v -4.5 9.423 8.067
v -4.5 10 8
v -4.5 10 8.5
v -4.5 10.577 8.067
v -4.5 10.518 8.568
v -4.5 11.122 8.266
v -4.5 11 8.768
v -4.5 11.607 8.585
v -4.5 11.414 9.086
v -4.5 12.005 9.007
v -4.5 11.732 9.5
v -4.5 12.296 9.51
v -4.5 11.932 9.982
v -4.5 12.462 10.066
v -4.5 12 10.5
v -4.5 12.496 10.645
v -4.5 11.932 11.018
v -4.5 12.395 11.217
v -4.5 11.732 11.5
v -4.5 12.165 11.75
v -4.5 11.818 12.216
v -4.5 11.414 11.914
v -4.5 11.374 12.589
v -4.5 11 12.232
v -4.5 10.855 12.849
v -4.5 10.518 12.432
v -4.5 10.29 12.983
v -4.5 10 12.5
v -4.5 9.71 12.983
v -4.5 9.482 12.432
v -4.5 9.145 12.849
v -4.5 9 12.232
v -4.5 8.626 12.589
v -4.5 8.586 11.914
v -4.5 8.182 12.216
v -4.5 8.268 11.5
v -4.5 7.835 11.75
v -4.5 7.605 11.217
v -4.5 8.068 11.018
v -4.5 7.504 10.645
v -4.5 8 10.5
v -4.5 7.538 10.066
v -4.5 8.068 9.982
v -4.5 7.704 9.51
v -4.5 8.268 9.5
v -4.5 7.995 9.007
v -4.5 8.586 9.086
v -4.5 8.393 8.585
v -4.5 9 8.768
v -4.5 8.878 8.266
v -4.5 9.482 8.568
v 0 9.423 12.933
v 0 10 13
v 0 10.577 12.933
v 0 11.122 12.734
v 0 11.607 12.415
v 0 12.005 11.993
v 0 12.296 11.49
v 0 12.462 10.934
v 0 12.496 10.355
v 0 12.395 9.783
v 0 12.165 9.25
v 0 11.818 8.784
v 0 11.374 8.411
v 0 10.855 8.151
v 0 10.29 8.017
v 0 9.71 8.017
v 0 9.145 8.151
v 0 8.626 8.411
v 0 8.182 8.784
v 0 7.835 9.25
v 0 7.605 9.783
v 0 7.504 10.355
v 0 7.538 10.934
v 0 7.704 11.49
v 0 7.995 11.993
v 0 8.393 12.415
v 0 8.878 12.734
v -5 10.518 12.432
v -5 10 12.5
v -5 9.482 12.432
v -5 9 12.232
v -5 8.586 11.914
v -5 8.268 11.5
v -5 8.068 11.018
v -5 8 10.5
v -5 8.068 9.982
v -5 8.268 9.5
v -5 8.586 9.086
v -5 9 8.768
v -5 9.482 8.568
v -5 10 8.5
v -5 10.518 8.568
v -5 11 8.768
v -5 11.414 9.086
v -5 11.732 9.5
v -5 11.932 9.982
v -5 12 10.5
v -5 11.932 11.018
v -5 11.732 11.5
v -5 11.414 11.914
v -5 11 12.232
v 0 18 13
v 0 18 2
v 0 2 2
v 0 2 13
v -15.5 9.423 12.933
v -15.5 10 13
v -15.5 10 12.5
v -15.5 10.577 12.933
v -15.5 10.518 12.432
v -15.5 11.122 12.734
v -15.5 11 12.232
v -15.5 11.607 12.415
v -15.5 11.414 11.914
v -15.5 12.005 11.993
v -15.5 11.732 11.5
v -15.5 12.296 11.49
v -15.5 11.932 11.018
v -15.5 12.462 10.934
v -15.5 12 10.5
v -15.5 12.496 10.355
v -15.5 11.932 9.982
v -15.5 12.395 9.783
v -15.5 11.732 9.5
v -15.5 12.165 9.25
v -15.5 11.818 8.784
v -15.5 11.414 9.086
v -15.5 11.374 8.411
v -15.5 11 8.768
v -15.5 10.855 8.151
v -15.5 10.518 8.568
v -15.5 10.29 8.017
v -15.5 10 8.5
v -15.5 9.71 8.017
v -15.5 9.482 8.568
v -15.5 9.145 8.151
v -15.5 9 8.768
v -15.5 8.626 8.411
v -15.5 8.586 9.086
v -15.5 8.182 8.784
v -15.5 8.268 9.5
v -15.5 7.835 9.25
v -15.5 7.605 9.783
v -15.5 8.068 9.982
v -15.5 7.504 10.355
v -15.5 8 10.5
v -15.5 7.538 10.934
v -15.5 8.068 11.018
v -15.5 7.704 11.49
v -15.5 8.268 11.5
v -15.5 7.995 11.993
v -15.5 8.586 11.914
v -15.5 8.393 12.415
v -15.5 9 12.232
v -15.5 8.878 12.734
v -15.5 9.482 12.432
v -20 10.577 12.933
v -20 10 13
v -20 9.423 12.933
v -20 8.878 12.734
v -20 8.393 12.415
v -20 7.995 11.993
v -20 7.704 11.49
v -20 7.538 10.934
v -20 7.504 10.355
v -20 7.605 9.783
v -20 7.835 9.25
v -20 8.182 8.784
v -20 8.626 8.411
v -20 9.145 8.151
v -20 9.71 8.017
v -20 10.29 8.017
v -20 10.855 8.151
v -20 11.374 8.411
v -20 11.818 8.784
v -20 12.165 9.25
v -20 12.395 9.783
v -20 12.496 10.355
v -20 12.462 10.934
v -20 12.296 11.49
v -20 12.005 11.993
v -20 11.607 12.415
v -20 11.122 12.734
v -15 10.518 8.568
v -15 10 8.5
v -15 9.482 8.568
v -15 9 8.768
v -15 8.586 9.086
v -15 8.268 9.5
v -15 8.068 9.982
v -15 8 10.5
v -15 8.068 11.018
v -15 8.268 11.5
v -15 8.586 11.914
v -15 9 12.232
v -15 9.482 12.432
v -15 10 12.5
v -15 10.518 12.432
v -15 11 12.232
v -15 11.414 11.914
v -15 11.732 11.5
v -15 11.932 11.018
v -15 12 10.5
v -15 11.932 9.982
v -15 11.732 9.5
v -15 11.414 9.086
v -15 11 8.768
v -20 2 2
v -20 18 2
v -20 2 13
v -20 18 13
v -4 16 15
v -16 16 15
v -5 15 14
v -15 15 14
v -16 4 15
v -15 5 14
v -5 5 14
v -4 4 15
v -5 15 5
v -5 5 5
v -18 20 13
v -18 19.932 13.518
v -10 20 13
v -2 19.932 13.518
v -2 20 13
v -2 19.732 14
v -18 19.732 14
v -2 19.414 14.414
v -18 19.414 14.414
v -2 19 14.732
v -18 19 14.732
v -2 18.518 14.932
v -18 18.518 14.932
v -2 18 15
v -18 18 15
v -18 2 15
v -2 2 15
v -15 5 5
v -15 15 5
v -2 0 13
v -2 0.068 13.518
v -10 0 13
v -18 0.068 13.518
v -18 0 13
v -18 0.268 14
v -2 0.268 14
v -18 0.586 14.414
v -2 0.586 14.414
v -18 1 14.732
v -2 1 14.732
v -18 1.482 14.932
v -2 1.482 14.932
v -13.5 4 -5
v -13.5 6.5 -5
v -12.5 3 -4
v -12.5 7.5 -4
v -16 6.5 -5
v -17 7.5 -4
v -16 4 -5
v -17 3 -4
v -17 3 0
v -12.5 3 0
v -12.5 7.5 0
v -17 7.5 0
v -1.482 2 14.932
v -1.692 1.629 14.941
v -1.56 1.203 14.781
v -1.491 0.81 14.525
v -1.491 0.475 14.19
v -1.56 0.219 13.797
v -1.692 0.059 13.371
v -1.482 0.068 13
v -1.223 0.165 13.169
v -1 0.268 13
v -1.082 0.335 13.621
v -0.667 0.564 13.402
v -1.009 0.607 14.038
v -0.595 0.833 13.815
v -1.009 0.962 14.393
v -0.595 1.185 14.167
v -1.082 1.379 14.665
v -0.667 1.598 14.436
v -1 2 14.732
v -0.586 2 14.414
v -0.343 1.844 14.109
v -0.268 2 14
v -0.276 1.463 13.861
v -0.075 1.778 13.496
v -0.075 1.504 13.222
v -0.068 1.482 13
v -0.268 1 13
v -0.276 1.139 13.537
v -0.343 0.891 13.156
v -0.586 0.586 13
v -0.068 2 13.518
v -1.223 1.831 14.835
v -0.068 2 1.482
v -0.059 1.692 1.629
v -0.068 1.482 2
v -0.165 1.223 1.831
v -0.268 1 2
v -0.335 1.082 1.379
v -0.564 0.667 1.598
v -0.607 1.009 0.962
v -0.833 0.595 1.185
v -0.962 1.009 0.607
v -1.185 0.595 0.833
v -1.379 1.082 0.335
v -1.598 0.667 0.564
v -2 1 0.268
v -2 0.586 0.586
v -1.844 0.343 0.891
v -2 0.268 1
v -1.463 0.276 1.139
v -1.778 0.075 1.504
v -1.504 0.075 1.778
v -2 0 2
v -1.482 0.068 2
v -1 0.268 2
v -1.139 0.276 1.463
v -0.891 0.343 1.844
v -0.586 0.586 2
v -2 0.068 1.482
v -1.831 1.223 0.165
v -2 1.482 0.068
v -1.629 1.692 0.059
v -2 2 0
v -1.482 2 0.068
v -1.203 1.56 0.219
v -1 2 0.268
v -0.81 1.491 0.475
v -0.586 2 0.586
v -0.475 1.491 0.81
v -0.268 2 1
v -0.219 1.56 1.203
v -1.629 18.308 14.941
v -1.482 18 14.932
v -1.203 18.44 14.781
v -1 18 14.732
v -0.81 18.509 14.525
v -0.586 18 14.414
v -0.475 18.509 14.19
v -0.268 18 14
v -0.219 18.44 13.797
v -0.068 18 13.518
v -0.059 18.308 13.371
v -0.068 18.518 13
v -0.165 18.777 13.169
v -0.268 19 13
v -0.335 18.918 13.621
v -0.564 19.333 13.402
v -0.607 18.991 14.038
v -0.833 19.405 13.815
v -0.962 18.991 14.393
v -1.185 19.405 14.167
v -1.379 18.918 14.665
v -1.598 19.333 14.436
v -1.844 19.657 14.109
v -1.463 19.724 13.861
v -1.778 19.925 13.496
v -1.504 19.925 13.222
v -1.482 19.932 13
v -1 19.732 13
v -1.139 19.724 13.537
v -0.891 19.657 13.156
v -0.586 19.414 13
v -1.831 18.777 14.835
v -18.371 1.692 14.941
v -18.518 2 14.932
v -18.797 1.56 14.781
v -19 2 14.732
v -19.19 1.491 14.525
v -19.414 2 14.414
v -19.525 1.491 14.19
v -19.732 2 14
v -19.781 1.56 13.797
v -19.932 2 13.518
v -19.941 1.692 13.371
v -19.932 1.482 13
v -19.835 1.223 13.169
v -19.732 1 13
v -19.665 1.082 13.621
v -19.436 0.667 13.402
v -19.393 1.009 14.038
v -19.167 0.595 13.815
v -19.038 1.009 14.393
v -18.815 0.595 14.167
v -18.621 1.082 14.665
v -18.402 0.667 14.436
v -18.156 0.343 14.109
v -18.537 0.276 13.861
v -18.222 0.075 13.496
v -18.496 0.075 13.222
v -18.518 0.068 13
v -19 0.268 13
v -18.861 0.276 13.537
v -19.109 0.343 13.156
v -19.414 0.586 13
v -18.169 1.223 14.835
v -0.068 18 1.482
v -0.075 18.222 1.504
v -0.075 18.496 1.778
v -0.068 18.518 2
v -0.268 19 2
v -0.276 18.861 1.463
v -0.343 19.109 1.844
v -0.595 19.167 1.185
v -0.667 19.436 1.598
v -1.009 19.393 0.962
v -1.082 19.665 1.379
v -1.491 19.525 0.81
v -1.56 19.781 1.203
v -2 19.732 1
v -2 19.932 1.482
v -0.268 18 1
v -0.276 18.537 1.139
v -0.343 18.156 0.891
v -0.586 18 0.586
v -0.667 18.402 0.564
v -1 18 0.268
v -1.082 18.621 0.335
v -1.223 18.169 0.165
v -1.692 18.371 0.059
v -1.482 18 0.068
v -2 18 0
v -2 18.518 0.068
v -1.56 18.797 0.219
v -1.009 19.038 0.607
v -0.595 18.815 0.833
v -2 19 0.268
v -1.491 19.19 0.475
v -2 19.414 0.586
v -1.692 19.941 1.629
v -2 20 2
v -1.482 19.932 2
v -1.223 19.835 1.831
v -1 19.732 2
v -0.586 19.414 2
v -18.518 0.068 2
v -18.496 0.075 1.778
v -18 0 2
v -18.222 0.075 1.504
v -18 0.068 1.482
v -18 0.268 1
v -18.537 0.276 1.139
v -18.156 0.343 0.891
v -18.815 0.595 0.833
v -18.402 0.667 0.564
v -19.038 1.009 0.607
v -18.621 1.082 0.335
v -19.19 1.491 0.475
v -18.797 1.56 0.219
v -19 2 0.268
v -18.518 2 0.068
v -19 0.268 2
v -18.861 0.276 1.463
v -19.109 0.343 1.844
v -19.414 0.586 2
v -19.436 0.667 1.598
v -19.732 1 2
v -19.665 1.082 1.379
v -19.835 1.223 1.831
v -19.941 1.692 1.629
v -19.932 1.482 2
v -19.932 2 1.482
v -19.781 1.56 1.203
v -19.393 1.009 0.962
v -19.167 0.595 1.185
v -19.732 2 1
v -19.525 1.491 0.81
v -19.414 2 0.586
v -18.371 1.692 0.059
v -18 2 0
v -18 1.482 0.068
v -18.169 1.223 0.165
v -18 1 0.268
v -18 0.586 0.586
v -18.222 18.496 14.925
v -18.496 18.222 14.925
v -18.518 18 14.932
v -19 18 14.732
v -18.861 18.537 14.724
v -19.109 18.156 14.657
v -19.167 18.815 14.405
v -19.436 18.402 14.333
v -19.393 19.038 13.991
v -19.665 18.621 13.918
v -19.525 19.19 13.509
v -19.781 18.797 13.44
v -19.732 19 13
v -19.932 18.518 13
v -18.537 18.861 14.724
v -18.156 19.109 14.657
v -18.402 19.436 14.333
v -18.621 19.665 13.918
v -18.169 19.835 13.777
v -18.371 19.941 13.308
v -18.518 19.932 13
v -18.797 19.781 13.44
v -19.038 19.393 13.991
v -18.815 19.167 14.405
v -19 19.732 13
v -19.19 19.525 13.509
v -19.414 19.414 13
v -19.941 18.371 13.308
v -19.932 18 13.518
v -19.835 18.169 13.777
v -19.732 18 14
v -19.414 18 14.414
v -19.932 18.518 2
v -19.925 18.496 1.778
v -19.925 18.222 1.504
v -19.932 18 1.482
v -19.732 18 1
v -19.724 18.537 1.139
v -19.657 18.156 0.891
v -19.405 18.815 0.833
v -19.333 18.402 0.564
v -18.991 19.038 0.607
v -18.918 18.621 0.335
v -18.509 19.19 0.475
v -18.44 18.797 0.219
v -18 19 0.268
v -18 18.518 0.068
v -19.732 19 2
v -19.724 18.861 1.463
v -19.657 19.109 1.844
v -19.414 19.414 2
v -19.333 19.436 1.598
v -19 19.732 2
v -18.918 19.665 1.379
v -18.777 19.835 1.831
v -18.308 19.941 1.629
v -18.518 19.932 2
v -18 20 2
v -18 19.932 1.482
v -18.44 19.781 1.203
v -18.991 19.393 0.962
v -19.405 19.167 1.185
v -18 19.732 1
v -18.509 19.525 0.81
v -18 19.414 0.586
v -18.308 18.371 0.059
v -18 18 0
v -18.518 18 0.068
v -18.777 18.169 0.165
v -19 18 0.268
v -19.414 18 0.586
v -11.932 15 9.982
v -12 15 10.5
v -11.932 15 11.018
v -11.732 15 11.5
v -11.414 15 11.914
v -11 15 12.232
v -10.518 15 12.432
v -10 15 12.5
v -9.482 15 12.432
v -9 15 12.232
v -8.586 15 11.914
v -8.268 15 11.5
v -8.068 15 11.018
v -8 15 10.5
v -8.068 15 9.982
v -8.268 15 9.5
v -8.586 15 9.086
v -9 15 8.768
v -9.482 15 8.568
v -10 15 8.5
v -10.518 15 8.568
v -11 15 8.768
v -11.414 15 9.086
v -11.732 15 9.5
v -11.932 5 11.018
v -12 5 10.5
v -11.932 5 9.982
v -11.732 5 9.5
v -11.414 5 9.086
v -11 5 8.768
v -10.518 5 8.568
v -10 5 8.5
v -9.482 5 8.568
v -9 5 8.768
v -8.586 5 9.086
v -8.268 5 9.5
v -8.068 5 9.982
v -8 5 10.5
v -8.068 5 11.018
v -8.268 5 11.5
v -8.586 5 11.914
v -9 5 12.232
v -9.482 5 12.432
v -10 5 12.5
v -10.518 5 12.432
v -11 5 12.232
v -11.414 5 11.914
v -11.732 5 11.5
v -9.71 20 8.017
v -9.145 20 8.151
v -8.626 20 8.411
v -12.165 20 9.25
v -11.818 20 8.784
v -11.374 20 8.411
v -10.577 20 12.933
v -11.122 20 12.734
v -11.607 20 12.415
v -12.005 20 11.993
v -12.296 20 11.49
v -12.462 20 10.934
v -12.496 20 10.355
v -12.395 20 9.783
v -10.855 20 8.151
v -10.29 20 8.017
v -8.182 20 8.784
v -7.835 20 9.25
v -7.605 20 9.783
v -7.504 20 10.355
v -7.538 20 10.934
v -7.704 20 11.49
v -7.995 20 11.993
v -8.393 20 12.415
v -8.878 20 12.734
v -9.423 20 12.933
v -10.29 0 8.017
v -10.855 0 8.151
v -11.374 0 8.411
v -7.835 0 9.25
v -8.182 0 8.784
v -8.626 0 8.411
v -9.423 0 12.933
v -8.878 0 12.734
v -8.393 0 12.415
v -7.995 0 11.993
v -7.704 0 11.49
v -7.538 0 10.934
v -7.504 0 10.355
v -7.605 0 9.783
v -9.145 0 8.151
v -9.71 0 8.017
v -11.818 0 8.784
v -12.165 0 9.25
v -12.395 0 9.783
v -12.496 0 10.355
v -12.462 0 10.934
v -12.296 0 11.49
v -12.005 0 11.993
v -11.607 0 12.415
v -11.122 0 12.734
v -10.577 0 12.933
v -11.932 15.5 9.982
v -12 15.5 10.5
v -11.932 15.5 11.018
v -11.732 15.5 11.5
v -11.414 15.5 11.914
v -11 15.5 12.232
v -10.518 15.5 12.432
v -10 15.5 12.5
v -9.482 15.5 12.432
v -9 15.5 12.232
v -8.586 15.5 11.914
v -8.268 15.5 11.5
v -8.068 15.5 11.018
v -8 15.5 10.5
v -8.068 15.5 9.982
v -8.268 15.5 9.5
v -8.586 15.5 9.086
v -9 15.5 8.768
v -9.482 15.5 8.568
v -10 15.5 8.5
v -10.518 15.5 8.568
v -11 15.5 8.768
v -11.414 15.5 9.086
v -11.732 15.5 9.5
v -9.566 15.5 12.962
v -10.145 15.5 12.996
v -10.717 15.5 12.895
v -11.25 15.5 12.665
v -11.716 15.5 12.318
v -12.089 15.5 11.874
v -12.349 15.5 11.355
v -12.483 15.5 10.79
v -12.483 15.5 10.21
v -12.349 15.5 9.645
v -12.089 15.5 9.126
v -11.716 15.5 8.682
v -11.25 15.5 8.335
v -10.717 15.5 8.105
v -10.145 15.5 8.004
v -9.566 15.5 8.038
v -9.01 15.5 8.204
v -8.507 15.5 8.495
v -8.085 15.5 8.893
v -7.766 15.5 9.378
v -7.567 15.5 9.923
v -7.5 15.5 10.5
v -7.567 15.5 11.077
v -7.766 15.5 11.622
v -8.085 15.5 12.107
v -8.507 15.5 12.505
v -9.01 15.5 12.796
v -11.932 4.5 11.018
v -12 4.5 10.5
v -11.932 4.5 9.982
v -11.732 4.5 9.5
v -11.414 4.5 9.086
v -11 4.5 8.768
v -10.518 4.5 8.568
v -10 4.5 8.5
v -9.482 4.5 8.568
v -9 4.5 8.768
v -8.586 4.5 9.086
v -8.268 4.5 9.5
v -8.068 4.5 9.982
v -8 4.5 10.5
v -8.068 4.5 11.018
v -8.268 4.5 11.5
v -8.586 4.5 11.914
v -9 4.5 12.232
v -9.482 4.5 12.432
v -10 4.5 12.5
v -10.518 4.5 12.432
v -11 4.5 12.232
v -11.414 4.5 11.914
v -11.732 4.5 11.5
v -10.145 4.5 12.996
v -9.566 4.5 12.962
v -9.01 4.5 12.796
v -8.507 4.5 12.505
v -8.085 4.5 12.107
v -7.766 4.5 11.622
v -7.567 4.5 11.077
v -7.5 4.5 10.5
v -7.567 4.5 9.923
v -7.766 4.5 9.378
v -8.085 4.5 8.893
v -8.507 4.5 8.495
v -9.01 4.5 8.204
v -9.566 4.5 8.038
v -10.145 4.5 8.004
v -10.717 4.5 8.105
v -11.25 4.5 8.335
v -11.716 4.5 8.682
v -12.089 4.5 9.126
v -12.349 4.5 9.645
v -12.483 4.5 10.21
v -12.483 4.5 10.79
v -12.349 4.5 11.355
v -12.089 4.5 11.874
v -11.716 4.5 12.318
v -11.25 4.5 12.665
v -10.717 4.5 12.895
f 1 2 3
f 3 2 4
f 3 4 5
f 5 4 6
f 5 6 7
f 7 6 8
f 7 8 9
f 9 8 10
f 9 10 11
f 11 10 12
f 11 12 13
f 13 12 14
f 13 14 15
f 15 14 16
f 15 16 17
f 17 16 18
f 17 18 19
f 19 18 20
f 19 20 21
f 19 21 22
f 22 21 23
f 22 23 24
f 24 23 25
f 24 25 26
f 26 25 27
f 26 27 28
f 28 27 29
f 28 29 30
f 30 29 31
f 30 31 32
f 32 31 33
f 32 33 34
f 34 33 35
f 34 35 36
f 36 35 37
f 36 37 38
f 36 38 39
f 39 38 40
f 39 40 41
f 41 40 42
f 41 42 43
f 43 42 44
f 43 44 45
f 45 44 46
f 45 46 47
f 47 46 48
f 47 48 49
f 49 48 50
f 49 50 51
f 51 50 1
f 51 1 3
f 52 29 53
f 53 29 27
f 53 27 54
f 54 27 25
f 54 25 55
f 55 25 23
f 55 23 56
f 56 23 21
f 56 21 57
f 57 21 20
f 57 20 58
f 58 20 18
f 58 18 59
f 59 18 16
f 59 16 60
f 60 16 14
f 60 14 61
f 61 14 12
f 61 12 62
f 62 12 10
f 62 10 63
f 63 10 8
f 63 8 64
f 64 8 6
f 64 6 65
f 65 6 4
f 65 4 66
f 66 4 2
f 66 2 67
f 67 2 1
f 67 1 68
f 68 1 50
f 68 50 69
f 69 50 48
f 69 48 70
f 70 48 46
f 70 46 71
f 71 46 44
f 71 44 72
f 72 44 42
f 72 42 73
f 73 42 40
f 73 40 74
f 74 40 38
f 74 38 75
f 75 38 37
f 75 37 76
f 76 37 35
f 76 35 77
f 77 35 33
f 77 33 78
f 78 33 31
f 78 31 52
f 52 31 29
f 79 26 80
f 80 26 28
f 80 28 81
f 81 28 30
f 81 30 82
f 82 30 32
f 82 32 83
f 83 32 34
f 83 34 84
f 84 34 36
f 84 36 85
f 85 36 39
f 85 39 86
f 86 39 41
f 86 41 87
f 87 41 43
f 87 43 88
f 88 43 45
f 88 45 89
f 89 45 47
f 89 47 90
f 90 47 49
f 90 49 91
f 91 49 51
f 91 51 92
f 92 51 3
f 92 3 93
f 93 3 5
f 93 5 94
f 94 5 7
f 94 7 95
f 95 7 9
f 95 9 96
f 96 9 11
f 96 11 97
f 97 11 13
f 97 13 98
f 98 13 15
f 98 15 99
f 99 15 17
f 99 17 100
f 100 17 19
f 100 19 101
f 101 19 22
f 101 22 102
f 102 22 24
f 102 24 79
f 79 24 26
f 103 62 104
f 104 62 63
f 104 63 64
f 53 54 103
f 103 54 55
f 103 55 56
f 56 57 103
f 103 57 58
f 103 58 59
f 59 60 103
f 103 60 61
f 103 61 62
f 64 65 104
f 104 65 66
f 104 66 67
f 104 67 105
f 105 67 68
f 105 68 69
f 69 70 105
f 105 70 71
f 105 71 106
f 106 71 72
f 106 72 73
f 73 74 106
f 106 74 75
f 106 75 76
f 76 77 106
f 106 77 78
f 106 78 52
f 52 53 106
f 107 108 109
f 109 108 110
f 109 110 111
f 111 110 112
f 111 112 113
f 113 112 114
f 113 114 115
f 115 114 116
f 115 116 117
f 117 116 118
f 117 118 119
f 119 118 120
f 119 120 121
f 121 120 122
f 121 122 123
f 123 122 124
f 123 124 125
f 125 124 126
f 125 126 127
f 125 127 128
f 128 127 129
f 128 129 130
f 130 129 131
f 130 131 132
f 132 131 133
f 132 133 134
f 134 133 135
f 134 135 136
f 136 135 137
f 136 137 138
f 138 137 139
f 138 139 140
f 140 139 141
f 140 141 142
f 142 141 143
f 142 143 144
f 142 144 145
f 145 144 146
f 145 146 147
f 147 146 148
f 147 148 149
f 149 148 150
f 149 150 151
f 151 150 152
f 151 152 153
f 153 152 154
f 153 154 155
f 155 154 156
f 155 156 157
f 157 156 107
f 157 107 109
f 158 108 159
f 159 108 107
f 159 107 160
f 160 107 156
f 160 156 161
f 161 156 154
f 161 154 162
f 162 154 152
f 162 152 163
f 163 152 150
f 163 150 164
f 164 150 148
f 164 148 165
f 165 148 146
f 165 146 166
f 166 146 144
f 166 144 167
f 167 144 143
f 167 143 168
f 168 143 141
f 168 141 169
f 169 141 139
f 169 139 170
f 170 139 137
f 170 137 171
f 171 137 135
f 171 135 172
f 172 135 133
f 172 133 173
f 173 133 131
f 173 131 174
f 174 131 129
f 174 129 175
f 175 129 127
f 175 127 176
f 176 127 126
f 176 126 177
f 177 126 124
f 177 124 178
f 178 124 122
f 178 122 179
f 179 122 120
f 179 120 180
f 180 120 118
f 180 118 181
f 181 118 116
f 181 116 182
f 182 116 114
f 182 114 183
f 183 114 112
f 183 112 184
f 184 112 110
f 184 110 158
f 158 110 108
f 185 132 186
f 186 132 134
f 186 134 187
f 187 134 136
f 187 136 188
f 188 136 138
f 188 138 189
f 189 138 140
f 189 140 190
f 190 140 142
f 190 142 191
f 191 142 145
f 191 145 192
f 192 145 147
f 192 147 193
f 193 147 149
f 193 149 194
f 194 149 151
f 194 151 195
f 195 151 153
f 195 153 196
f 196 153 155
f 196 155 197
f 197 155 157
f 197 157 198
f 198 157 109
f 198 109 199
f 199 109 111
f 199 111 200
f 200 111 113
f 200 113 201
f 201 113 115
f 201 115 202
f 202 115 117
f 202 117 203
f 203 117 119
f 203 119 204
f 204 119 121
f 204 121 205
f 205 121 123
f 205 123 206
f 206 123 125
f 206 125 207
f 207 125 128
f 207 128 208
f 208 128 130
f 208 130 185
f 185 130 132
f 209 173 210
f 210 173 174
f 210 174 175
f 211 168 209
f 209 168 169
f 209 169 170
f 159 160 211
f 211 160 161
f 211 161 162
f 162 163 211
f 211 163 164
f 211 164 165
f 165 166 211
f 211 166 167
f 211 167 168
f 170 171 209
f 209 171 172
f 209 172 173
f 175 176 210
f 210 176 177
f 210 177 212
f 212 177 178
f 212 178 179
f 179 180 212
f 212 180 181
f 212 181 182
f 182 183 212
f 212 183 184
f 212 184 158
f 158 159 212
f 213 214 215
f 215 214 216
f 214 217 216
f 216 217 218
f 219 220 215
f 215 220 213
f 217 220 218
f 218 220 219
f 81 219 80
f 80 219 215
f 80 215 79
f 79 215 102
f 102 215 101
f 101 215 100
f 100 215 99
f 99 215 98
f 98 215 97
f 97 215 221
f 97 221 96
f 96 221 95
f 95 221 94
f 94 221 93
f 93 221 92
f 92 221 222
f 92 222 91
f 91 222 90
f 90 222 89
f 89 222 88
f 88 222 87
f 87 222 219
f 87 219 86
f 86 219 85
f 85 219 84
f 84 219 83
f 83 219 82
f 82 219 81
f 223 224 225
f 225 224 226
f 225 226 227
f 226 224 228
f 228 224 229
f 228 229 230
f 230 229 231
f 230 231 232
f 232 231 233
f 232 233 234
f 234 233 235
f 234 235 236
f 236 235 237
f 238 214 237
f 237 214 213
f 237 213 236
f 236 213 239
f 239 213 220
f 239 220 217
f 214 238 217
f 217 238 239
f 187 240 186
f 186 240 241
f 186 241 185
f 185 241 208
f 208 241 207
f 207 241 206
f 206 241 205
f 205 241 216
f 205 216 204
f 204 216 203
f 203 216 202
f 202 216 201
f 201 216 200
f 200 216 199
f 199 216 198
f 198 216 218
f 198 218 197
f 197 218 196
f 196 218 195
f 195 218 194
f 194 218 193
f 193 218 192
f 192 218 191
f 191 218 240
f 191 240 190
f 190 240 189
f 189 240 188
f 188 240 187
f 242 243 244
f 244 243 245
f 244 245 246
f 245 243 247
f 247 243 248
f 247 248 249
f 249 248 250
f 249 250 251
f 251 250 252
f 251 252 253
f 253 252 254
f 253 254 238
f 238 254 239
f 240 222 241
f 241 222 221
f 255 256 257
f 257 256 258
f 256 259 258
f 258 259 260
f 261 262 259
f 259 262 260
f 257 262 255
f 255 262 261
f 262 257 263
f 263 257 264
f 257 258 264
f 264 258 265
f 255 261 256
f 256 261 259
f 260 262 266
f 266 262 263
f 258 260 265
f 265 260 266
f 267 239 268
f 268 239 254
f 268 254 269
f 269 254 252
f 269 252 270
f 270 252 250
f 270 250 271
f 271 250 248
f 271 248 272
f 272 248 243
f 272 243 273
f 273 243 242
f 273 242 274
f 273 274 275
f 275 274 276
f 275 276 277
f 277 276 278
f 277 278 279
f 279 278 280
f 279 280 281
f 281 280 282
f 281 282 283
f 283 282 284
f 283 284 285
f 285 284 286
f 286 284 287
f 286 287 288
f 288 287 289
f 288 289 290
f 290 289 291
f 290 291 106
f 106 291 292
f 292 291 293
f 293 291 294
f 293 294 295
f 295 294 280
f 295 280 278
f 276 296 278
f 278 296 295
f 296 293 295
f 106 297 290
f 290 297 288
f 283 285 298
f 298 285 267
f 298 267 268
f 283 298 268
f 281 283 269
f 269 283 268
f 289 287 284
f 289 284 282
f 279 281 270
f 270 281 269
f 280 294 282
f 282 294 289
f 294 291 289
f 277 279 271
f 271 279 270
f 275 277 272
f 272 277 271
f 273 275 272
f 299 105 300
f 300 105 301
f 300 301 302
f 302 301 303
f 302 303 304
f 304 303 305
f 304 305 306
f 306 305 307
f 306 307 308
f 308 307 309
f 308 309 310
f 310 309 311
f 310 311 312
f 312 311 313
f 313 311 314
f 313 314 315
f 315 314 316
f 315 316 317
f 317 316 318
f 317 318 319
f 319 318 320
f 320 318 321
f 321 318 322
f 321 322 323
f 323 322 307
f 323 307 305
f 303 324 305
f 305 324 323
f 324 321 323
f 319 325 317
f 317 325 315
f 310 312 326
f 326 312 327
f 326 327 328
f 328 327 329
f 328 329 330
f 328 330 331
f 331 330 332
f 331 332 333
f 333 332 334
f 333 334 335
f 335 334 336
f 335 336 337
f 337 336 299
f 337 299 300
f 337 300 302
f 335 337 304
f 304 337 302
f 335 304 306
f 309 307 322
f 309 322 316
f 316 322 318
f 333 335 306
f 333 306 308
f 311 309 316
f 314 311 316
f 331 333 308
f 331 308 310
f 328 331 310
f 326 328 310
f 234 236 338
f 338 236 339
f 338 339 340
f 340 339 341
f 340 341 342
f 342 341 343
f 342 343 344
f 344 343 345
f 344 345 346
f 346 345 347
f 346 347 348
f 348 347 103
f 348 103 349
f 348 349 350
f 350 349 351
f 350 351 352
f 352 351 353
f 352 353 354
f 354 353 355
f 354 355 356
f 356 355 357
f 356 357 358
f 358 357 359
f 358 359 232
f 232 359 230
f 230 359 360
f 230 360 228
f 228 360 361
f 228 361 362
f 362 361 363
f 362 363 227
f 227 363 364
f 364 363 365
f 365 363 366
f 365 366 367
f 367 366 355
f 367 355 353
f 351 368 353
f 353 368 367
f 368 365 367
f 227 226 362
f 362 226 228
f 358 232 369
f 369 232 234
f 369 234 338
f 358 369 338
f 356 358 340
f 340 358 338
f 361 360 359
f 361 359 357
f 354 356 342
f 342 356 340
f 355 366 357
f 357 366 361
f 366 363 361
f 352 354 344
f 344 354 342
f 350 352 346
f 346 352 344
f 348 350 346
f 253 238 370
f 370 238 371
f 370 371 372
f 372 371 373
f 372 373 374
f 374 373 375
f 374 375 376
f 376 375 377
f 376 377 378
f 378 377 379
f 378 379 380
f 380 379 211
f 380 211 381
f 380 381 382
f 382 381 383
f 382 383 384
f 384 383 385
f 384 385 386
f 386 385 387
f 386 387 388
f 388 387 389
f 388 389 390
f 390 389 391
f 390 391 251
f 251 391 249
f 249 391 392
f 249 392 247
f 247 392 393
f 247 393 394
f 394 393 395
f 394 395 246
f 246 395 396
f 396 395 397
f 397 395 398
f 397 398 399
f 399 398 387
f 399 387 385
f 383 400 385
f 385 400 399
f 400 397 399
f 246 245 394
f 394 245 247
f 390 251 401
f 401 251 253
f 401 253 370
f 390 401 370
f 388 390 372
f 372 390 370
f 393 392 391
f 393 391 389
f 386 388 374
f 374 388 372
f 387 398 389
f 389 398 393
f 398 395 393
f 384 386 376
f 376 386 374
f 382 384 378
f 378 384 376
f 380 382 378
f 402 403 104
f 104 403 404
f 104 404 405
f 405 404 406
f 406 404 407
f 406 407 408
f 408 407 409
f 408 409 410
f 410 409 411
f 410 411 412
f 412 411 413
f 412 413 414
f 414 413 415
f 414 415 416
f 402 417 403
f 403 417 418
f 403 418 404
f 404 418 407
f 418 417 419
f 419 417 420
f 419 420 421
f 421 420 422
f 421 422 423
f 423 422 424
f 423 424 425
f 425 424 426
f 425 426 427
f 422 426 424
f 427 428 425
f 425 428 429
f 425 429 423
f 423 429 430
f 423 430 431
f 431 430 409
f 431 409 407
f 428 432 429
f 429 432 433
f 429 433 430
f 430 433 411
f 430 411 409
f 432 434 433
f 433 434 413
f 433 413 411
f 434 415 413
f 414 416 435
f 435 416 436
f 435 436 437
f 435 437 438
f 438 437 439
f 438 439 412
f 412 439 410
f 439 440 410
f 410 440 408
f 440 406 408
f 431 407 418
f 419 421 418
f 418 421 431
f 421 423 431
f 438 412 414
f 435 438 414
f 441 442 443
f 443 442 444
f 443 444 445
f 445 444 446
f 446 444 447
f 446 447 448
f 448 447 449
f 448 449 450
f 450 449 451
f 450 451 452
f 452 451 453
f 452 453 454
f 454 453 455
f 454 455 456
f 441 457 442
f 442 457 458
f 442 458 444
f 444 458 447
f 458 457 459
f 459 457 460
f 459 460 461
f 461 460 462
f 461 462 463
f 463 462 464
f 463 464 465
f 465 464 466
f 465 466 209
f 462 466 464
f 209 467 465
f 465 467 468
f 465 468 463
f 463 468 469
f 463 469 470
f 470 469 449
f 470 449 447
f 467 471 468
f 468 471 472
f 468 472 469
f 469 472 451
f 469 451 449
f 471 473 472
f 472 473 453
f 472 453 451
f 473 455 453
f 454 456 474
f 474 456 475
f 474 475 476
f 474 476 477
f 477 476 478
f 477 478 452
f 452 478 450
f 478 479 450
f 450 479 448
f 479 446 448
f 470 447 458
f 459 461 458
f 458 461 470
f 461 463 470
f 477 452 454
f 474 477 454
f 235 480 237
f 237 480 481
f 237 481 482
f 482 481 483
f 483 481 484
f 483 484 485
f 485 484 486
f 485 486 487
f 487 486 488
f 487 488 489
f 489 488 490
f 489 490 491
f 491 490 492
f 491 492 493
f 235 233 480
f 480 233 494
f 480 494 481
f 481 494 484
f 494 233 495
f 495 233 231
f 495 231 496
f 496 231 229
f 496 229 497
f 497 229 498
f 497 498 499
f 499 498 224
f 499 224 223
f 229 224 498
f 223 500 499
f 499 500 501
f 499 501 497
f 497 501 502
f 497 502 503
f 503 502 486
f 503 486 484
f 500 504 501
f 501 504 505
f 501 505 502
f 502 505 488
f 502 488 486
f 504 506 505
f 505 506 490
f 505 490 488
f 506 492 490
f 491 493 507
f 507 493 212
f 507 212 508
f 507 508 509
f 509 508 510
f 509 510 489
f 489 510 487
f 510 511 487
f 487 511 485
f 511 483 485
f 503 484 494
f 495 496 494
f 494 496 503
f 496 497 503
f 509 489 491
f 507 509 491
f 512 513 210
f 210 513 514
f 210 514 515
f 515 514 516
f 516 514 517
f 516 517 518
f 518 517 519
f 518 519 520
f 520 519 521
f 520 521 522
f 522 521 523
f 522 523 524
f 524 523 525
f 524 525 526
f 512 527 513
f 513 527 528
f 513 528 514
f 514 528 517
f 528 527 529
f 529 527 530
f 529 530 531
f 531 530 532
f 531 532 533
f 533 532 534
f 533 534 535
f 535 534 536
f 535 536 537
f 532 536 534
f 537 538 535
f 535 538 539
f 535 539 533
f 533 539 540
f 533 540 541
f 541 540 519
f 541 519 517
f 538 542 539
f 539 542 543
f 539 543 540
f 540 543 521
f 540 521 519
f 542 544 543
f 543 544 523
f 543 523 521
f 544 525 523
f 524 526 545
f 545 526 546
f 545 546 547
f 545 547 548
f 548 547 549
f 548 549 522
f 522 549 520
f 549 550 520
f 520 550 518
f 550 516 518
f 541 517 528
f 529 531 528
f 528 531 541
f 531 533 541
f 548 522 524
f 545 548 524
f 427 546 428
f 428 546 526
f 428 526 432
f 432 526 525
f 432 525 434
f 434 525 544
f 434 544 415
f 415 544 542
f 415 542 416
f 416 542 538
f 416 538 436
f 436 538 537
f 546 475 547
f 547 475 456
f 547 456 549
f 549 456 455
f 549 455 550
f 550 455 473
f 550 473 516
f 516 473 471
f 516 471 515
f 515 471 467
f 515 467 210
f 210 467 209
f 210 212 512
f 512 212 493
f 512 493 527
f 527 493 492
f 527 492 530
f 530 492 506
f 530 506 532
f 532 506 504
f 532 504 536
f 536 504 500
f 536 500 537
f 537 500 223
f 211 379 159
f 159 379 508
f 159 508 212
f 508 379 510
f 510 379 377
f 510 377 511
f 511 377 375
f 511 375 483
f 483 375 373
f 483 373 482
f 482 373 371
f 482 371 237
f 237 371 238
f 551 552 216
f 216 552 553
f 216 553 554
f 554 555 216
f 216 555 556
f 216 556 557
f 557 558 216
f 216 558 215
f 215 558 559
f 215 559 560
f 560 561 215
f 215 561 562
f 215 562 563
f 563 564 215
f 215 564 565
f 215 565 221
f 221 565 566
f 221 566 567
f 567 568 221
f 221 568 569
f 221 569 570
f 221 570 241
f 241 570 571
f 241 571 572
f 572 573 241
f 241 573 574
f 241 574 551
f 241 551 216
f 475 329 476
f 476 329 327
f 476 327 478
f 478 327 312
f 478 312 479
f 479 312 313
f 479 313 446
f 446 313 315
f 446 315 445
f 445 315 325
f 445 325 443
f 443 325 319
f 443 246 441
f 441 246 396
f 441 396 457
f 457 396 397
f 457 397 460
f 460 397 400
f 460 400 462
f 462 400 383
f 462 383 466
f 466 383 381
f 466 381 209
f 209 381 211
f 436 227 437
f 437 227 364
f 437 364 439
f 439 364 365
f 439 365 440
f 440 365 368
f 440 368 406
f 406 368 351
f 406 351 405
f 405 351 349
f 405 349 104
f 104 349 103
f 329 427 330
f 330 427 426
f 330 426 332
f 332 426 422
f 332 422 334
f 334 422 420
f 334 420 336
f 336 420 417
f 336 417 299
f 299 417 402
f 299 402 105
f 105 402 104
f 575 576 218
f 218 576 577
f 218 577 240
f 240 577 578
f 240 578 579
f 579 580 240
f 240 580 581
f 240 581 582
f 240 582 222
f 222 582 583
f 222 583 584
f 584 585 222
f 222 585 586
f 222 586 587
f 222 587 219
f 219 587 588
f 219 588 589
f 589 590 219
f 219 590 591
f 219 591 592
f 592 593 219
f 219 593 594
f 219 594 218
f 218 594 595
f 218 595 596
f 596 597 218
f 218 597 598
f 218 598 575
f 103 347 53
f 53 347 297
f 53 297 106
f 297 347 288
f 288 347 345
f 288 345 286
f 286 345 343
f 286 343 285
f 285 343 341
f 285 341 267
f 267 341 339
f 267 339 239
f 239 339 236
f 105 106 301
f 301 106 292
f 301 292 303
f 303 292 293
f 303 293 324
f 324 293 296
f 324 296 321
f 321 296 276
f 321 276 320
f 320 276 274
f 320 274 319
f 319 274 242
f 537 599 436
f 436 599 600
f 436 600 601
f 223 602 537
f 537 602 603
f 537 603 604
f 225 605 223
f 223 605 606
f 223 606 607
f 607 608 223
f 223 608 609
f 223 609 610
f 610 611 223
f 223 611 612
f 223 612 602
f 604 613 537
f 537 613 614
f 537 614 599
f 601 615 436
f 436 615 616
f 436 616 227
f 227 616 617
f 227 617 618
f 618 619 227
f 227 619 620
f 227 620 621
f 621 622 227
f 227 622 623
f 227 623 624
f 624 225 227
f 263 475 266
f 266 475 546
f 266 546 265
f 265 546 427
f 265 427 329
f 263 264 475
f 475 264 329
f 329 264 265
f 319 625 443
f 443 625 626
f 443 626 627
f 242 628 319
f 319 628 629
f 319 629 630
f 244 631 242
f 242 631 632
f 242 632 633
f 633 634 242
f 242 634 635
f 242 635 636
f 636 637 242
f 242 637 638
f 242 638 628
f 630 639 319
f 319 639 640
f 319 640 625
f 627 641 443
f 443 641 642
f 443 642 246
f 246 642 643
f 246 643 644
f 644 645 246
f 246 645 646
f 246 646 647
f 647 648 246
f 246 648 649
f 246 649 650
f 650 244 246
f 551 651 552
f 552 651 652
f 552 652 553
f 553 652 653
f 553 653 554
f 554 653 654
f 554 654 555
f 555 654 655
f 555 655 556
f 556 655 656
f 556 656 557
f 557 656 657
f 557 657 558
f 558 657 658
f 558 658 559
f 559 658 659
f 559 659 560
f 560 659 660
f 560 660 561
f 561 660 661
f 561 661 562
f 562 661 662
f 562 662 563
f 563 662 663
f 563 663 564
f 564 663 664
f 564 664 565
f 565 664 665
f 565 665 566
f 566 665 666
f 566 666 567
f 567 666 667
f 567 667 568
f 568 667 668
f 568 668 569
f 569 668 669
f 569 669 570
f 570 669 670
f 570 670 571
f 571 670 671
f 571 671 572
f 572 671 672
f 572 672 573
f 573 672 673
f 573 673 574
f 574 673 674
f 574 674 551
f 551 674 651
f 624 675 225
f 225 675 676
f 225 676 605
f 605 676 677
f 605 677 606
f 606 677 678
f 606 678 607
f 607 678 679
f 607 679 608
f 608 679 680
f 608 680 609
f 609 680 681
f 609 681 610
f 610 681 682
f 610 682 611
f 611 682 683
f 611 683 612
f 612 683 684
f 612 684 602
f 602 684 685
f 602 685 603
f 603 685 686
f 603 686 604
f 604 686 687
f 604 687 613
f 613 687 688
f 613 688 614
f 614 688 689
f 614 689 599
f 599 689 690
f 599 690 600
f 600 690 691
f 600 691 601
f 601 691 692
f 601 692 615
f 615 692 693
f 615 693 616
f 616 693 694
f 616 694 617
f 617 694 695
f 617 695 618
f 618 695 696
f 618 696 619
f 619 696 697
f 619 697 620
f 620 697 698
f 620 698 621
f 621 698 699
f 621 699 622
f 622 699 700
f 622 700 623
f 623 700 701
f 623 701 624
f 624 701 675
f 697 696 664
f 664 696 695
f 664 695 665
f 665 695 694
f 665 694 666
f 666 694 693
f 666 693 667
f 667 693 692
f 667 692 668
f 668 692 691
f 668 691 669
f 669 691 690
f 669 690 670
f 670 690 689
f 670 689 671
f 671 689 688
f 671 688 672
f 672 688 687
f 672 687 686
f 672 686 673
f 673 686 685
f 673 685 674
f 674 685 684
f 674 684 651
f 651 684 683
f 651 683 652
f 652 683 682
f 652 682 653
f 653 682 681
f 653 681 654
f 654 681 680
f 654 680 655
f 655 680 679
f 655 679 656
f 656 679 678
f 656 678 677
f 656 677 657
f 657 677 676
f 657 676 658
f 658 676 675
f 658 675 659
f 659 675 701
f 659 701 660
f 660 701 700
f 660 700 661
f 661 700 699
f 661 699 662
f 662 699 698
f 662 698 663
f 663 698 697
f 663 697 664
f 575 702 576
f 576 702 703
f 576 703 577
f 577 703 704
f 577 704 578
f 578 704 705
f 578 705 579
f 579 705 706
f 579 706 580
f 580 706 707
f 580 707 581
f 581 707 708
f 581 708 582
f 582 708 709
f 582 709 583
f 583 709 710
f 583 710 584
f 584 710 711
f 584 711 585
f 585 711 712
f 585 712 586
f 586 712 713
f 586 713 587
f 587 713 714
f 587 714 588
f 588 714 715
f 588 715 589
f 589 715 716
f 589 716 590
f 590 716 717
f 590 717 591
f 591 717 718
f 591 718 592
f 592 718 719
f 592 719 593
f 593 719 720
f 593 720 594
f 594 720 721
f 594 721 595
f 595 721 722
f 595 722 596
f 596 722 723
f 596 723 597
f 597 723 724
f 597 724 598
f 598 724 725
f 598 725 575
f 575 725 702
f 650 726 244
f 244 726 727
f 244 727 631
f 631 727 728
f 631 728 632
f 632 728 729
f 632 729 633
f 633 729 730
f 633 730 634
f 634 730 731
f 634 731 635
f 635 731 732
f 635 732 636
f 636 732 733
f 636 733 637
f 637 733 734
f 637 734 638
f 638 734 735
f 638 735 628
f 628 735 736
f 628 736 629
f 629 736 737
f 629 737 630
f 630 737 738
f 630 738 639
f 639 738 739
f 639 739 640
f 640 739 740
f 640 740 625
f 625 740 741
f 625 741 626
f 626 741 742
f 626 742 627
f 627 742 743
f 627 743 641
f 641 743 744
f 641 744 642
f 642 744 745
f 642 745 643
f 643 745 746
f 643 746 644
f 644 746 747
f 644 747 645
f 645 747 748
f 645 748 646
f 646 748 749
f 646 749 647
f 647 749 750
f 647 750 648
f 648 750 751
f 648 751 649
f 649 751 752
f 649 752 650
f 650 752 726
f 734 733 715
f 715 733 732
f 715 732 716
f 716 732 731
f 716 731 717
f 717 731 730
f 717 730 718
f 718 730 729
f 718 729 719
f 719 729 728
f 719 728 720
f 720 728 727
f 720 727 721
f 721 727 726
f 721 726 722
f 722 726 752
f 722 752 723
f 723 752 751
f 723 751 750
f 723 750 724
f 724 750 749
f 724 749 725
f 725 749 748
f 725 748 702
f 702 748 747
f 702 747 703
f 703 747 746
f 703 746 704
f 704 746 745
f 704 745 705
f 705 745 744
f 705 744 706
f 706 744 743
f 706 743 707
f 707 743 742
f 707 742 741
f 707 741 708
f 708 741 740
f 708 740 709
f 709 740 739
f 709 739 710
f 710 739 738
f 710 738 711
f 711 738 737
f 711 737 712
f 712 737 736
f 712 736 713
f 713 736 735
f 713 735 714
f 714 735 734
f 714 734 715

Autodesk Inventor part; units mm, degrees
ref_plane "YZ Plane" through (0, 0, 0) normal (1, 0, 0) x (0, 1, 0)
ref_plane "XZ Plane" through (0, 0, 0) normal (0, 1, 0) x (-1, 0, 0)
ref_plane "XY Plane" through (0, 0, 0) normal (0, 0, 1) x (1, 0, 0)
sketch "Sketch14" plane through (0, 0, 0) normal (0, 0, 1) x (1, 0, 0)
  line L0 (0, 0) -> (-20, 0)
  line L1 (-20, 0) -> (-20, 20)
  line L2 (-20, 20) -> (0, 20)
  line L3 (0, 20) -> (0, 0)
  line L4 (-5, 5) -> (-10, 5)
  line L5 (-10, 5) -> (-10, 10)
  line L6 (-10, 10) -> (-5, 10)
  line L7 (-5, 10) -> (-5, 5)
  dimension "d71" = 20
  dimension "d72" = 20
  dimension "d73" = 5
  dimension "d74" = 5
extrude "Extrusion9" add sketch "Sketch14" along normal blind 15 contours L0 L1 L2 L3 | L4 L5 L6 L7
fillet "Fillet1" radius 2 12 edges at (-20, 20, 7.5) (-20, 10, 0) (-20, 0, 7.5) (-20, 10, 15) (0, 10, 15) (-10, 20, 15) (0, 20, 7.5) (-10, 20, 0) (-10, 0, 15) (0, 10, 0) (0, 0, 7.5) (-10, 0, 0)
sketch "Sketch19" plane through (0, 0, 0) normal (0, 0, -1) x (-1, 0, 0)
  line L0 (17, 3) -> (12.5, 3)
  line L1 (12.5, 3) -> (12.5, 7.5)
  line L2 (12.5, 7.5) -> (17, 7.5)
  line L3 (17, 7.5) -> (17, 3)
  point P0 (0, 0)
  point P1 (20, 20)
  dimension "d164" = 4.5
  dimension "d165" = 4.5
extrude "Extrusion15" add sketch "Sketch19" along normal blind 5
chamfer "Chamfer12" distance 1 angle 45 4 edges at (-17, 5.25, -5) (-14.75, 7.5, -5) (-12.5, 5.25, -5) (-14.75, 3, -5)
sketch "Sketch24" plane through (0, 0, 15) normal (0, 0, 1) x (1, 0, 0)
  line L0 (-15, 15) -> (-5, 15)
  line L1 (-5, 15) -> (-5, 5)
  line L2 (-5, 5) -> (-15, 5)
  line L3 (-15, 5) -> (-15, 15)
  point P0 (0, 0)
  dimension "d176" = 10
  dimension "d177" = 10
extrude "Extrusion16" cut sketch "Sketch24" against normal blind 10
chamfer "Chamfer13" distance 1 angle 45 4 edges at (-10, 5, 15) (-5, 10, 15) (-10, 15, 15) (-15, 10, 15)
sketch "Sketch28" plane through (-20, 2, 2) normal (-1, 0, 0) x (0, 0, 1)
  point P0 (-2, -2)
  point P1 (8.5, 8)
hole "Hole15" at (-20, 10, 10.5) direction (1, 0, 0) diameter 4 depth 6 counterbore diameter 5 counterbore depth 4.5
sketch "Sketch29" plane through (0, 2, 13) normal (1, 0, 0) x (0, 0, -1)
  circle A0 centre (2.5, 8) radius 2 projected
  point P0 (13, -2)
hole "Hole16" at (0, 10, 10.5) direction (-1, 0, 0) diameter 4 depth 6 counterbore diameter 5 counterbore depth 4.5
sketch "Sketch30" plane through (-18, 20, 2) normal (0, 1, 0) x (1, 0, 0)
  line L0 (18, 2) -> (-2, 2)
  line L1 (-2, 2) -> (-2, -13)
  line L2 (-2, -13) -> (18, -13)
  line L3 (18, -13) -> (18, 2)
  line L4 (-2, -13) -> (8, -13)
  line L5 (8, -13) -> (8, -8.5)
  line L6 (8, -8.5) -> (-2, -8.5)
  line L7 (-2, -8.5) -> (-2, -13)
  dimension "d226" = 20
  dimension "d227" = 15
  dimension "d228" = 10
  dimension "d229" = 4.5
sketch "Sketch31" plane through (-18, 0, 2) normal (0, -1, 0) x (1, 0, 0)
  line L0 (18, -2) -> (-2, -2)
  line L1 (-2, -2) -> (-2, 13)
  line L2 (-2, 13) -> (18, 13)
  line L3 (18, 13) -> (18, -2)
  line L4 (-2, 13) -> (8, 13)
  line L5 (8, 13) -> (8, 8.5)
  line L6 (8, 8.5) -> (-2, 8.5)
  line L7 (-2, 8.5) -> (-2, 13)
  dimension "d230" = 20
  dimension "d231" = 15
  dimension "d232" = 10
  dimension "d233" = 4.5
hole "Hole17" at (-10, 20, 10.5) direction (0, -1, 0) diameter 4 depth 6 counterbore diameter 5 counterbore depth 4.5
hole "Hole18" at (-10, 0, 10.5) direction (0, 1, 0) diameter 4 depth 6 counterbore diameter 5 counterbore depth 4.5
properties part number "Clamp_Adapter_V1"
